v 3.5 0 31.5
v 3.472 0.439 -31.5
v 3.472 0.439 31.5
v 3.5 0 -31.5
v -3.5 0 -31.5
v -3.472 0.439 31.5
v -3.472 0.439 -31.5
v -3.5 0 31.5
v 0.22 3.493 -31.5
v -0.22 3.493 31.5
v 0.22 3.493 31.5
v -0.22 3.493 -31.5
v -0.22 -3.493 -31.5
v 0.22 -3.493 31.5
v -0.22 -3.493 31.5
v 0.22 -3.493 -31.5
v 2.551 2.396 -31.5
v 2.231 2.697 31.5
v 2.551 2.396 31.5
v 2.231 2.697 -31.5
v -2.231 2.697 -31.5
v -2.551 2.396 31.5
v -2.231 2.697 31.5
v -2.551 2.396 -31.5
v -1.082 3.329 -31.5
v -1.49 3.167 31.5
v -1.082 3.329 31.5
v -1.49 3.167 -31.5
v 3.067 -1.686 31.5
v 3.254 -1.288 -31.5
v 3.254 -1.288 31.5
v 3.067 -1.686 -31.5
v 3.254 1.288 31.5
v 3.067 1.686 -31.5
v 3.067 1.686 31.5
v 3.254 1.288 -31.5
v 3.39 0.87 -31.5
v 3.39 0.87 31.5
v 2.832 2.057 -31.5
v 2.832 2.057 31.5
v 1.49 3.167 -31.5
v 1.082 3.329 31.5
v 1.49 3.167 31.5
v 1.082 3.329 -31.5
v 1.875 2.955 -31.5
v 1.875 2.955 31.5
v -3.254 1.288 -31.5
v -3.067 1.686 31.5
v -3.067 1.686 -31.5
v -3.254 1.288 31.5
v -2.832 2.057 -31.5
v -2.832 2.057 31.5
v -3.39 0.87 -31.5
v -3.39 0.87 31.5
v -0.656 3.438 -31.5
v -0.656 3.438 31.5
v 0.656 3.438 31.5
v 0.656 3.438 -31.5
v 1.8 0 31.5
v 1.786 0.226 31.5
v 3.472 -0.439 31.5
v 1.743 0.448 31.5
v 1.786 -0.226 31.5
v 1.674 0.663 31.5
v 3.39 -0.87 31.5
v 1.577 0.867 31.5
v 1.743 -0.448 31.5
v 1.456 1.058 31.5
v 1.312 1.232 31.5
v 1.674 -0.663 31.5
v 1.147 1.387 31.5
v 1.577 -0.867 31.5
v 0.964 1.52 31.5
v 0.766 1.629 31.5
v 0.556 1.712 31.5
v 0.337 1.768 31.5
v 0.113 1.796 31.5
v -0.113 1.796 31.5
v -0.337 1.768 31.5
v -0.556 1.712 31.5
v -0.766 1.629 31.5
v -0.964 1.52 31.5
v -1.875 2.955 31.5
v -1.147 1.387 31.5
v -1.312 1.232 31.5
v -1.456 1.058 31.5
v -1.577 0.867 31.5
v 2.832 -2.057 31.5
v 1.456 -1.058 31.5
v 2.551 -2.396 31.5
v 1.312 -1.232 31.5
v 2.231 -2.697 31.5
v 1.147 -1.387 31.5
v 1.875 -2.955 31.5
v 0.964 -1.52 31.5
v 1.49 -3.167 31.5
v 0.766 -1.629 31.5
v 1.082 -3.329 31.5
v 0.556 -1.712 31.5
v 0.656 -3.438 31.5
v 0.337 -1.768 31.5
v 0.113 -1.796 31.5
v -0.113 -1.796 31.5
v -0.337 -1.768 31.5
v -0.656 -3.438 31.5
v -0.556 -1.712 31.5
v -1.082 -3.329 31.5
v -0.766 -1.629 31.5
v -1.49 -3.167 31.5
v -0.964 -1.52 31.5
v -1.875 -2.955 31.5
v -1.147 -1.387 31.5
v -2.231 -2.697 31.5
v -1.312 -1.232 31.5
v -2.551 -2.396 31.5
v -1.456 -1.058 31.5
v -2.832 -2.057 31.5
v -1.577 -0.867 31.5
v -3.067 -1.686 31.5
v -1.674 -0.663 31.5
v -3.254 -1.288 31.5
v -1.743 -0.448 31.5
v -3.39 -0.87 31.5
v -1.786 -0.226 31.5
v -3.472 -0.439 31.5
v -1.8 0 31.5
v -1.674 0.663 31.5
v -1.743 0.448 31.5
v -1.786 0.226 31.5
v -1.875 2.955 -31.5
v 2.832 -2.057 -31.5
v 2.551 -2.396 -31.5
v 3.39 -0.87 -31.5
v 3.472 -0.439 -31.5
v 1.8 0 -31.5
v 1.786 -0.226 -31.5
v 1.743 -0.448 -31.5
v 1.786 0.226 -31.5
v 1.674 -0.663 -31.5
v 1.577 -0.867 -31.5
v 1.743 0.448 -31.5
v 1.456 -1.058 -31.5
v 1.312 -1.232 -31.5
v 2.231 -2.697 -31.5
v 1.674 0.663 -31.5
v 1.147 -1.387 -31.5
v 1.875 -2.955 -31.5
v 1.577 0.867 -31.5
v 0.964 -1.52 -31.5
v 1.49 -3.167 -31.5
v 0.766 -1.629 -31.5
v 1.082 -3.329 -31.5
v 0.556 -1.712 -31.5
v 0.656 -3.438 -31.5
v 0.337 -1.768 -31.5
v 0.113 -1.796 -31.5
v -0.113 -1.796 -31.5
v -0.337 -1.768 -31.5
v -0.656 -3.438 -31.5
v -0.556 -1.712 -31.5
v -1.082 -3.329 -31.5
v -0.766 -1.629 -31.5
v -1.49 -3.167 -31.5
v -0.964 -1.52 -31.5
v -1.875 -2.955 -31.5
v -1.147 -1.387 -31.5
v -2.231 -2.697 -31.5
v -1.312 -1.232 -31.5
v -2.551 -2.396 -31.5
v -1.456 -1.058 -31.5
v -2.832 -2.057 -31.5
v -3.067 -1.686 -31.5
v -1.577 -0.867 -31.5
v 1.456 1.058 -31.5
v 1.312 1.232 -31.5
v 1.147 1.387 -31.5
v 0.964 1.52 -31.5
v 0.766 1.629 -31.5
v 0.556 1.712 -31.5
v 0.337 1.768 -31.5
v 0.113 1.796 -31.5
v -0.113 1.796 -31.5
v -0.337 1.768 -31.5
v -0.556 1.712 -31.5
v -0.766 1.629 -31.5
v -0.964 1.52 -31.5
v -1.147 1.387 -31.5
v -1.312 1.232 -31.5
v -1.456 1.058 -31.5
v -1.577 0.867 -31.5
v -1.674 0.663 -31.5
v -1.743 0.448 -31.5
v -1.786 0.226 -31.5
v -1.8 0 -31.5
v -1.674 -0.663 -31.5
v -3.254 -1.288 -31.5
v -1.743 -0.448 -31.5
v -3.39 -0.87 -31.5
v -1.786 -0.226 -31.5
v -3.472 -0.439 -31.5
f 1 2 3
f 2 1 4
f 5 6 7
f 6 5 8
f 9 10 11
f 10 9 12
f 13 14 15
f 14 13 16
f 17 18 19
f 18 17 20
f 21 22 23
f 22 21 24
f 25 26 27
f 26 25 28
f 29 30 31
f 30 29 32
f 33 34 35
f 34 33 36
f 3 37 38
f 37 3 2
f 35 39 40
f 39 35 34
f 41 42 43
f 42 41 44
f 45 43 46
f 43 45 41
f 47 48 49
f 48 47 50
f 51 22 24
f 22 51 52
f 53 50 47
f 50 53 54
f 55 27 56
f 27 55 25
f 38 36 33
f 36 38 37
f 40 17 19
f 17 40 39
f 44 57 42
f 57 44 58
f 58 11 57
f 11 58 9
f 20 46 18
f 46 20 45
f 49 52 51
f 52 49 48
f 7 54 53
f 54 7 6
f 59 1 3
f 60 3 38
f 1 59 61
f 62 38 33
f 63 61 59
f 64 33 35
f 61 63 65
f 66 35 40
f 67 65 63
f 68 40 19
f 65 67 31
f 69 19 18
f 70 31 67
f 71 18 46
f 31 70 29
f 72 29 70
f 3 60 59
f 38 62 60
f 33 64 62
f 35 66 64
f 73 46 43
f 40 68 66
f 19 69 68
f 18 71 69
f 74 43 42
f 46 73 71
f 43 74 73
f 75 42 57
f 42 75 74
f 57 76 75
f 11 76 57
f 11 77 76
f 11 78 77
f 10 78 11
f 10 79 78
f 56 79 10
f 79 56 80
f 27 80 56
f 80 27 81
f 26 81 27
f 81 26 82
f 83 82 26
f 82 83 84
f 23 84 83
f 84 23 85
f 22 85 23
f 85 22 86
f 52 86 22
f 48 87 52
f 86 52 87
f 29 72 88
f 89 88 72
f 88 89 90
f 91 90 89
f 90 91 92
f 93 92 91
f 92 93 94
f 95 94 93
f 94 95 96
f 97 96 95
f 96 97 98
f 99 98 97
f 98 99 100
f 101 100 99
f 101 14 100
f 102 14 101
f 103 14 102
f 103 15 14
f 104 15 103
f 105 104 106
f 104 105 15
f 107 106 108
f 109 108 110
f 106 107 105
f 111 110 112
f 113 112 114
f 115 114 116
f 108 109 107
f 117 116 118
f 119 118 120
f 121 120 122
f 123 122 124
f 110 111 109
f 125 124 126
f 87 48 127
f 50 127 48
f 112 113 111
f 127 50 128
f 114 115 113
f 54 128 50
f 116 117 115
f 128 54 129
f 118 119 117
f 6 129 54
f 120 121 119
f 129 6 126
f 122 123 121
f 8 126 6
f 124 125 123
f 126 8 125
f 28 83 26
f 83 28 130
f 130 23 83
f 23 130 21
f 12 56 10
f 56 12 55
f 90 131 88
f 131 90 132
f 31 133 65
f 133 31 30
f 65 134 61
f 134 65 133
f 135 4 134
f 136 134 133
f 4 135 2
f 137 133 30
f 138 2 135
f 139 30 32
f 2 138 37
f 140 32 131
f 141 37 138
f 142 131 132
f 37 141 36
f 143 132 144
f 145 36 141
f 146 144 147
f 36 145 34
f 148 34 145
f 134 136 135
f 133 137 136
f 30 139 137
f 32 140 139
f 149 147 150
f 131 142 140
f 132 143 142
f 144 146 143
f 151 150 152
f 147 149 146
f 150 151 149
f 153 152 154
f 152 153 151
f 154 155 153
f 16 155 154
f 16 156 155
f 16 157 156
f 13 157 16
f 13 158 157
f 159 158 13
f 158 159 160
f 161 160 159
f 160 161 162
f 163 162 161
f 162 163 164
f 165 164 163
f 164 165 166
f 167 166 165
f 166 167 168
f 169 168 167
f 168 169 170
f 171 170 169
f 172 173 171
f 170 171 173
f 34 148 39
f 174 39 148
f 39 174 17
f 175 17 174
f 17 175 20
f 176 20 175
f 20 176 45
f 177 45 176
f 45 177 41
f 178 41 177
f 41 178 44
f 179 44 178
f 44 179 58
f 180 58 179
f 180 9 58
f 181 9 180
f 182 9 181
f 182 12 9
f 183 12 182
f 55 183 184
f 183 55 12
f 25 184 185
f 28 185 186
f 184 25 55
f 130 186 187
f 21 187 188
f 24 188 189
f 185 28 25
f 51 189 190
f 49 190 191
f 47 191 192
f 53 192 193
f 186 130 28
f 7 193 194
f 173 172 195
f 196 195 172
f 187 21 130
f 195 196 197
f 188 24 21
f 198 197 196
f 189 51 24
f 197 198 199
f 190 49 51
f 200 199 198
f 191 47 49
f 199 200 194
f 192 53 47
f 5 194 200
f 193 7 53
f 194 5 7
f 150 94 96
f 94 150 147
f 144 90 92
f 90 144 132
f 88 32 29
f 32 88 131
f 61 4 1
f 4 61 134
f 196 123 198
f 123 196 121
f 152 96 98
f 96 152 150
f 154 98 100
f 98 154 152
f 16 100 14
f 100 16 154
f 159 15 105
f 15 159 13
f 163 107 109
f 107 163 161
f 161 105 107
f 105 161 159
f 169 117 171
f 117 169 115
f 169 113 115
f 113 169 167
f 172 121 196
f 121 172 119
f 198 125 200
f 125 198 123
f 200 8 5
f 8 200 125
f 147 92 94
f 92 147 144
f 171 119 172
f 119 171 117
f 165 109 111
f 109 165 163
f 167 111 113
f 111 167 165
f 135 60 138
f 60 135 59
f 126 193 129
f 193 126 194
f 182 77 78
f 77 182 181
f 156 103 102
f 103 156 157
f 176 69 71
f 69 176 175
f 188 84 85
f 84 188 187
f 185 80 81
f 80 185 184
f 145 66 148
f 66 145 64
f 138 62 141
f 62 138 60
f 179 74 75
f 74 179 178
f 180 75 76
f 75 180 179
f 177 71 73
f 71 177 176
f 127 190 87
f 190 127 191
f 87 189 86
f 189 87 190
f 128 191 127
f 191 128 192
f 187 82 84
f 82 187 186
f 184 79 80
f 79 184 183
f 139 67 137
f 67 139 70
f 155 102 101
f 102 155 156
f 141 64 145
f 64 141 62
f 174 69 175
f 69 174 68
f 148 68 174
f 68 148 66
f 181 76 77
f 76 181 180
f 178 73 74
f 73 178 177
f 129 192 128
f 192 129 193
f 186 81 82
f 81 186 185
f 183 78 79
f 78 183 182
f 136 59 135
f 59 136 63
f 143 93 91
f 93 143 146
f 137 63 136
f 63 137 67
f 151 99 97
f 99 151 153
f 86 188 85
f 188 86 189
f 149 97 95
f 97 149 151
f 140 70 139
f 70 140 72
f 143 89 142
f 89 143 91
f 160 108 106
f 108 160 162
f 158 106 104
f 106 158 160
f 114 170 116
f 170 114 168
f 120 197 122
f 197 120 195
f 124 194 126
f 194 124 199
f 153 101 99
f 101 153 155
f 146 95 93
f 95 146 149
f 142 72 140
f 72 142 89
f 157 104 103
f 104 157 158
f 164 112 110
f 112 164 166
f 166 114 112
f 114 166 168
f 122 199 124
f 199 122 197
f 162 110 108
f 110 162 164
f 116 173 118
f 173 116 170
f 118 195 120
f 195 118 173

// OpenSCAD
$fn = 50;


difference() {
	union() {
		translate(v = [0, 0, -31.5000000000]) {
			cylinder(h = 63, r = 3.5000000000);
		}
	}
	union() {
		translate(v = [0, 0, -100.0000000000]) {
			cylinder(h = 200, r = 1.8000000000);
		}
	}
}
